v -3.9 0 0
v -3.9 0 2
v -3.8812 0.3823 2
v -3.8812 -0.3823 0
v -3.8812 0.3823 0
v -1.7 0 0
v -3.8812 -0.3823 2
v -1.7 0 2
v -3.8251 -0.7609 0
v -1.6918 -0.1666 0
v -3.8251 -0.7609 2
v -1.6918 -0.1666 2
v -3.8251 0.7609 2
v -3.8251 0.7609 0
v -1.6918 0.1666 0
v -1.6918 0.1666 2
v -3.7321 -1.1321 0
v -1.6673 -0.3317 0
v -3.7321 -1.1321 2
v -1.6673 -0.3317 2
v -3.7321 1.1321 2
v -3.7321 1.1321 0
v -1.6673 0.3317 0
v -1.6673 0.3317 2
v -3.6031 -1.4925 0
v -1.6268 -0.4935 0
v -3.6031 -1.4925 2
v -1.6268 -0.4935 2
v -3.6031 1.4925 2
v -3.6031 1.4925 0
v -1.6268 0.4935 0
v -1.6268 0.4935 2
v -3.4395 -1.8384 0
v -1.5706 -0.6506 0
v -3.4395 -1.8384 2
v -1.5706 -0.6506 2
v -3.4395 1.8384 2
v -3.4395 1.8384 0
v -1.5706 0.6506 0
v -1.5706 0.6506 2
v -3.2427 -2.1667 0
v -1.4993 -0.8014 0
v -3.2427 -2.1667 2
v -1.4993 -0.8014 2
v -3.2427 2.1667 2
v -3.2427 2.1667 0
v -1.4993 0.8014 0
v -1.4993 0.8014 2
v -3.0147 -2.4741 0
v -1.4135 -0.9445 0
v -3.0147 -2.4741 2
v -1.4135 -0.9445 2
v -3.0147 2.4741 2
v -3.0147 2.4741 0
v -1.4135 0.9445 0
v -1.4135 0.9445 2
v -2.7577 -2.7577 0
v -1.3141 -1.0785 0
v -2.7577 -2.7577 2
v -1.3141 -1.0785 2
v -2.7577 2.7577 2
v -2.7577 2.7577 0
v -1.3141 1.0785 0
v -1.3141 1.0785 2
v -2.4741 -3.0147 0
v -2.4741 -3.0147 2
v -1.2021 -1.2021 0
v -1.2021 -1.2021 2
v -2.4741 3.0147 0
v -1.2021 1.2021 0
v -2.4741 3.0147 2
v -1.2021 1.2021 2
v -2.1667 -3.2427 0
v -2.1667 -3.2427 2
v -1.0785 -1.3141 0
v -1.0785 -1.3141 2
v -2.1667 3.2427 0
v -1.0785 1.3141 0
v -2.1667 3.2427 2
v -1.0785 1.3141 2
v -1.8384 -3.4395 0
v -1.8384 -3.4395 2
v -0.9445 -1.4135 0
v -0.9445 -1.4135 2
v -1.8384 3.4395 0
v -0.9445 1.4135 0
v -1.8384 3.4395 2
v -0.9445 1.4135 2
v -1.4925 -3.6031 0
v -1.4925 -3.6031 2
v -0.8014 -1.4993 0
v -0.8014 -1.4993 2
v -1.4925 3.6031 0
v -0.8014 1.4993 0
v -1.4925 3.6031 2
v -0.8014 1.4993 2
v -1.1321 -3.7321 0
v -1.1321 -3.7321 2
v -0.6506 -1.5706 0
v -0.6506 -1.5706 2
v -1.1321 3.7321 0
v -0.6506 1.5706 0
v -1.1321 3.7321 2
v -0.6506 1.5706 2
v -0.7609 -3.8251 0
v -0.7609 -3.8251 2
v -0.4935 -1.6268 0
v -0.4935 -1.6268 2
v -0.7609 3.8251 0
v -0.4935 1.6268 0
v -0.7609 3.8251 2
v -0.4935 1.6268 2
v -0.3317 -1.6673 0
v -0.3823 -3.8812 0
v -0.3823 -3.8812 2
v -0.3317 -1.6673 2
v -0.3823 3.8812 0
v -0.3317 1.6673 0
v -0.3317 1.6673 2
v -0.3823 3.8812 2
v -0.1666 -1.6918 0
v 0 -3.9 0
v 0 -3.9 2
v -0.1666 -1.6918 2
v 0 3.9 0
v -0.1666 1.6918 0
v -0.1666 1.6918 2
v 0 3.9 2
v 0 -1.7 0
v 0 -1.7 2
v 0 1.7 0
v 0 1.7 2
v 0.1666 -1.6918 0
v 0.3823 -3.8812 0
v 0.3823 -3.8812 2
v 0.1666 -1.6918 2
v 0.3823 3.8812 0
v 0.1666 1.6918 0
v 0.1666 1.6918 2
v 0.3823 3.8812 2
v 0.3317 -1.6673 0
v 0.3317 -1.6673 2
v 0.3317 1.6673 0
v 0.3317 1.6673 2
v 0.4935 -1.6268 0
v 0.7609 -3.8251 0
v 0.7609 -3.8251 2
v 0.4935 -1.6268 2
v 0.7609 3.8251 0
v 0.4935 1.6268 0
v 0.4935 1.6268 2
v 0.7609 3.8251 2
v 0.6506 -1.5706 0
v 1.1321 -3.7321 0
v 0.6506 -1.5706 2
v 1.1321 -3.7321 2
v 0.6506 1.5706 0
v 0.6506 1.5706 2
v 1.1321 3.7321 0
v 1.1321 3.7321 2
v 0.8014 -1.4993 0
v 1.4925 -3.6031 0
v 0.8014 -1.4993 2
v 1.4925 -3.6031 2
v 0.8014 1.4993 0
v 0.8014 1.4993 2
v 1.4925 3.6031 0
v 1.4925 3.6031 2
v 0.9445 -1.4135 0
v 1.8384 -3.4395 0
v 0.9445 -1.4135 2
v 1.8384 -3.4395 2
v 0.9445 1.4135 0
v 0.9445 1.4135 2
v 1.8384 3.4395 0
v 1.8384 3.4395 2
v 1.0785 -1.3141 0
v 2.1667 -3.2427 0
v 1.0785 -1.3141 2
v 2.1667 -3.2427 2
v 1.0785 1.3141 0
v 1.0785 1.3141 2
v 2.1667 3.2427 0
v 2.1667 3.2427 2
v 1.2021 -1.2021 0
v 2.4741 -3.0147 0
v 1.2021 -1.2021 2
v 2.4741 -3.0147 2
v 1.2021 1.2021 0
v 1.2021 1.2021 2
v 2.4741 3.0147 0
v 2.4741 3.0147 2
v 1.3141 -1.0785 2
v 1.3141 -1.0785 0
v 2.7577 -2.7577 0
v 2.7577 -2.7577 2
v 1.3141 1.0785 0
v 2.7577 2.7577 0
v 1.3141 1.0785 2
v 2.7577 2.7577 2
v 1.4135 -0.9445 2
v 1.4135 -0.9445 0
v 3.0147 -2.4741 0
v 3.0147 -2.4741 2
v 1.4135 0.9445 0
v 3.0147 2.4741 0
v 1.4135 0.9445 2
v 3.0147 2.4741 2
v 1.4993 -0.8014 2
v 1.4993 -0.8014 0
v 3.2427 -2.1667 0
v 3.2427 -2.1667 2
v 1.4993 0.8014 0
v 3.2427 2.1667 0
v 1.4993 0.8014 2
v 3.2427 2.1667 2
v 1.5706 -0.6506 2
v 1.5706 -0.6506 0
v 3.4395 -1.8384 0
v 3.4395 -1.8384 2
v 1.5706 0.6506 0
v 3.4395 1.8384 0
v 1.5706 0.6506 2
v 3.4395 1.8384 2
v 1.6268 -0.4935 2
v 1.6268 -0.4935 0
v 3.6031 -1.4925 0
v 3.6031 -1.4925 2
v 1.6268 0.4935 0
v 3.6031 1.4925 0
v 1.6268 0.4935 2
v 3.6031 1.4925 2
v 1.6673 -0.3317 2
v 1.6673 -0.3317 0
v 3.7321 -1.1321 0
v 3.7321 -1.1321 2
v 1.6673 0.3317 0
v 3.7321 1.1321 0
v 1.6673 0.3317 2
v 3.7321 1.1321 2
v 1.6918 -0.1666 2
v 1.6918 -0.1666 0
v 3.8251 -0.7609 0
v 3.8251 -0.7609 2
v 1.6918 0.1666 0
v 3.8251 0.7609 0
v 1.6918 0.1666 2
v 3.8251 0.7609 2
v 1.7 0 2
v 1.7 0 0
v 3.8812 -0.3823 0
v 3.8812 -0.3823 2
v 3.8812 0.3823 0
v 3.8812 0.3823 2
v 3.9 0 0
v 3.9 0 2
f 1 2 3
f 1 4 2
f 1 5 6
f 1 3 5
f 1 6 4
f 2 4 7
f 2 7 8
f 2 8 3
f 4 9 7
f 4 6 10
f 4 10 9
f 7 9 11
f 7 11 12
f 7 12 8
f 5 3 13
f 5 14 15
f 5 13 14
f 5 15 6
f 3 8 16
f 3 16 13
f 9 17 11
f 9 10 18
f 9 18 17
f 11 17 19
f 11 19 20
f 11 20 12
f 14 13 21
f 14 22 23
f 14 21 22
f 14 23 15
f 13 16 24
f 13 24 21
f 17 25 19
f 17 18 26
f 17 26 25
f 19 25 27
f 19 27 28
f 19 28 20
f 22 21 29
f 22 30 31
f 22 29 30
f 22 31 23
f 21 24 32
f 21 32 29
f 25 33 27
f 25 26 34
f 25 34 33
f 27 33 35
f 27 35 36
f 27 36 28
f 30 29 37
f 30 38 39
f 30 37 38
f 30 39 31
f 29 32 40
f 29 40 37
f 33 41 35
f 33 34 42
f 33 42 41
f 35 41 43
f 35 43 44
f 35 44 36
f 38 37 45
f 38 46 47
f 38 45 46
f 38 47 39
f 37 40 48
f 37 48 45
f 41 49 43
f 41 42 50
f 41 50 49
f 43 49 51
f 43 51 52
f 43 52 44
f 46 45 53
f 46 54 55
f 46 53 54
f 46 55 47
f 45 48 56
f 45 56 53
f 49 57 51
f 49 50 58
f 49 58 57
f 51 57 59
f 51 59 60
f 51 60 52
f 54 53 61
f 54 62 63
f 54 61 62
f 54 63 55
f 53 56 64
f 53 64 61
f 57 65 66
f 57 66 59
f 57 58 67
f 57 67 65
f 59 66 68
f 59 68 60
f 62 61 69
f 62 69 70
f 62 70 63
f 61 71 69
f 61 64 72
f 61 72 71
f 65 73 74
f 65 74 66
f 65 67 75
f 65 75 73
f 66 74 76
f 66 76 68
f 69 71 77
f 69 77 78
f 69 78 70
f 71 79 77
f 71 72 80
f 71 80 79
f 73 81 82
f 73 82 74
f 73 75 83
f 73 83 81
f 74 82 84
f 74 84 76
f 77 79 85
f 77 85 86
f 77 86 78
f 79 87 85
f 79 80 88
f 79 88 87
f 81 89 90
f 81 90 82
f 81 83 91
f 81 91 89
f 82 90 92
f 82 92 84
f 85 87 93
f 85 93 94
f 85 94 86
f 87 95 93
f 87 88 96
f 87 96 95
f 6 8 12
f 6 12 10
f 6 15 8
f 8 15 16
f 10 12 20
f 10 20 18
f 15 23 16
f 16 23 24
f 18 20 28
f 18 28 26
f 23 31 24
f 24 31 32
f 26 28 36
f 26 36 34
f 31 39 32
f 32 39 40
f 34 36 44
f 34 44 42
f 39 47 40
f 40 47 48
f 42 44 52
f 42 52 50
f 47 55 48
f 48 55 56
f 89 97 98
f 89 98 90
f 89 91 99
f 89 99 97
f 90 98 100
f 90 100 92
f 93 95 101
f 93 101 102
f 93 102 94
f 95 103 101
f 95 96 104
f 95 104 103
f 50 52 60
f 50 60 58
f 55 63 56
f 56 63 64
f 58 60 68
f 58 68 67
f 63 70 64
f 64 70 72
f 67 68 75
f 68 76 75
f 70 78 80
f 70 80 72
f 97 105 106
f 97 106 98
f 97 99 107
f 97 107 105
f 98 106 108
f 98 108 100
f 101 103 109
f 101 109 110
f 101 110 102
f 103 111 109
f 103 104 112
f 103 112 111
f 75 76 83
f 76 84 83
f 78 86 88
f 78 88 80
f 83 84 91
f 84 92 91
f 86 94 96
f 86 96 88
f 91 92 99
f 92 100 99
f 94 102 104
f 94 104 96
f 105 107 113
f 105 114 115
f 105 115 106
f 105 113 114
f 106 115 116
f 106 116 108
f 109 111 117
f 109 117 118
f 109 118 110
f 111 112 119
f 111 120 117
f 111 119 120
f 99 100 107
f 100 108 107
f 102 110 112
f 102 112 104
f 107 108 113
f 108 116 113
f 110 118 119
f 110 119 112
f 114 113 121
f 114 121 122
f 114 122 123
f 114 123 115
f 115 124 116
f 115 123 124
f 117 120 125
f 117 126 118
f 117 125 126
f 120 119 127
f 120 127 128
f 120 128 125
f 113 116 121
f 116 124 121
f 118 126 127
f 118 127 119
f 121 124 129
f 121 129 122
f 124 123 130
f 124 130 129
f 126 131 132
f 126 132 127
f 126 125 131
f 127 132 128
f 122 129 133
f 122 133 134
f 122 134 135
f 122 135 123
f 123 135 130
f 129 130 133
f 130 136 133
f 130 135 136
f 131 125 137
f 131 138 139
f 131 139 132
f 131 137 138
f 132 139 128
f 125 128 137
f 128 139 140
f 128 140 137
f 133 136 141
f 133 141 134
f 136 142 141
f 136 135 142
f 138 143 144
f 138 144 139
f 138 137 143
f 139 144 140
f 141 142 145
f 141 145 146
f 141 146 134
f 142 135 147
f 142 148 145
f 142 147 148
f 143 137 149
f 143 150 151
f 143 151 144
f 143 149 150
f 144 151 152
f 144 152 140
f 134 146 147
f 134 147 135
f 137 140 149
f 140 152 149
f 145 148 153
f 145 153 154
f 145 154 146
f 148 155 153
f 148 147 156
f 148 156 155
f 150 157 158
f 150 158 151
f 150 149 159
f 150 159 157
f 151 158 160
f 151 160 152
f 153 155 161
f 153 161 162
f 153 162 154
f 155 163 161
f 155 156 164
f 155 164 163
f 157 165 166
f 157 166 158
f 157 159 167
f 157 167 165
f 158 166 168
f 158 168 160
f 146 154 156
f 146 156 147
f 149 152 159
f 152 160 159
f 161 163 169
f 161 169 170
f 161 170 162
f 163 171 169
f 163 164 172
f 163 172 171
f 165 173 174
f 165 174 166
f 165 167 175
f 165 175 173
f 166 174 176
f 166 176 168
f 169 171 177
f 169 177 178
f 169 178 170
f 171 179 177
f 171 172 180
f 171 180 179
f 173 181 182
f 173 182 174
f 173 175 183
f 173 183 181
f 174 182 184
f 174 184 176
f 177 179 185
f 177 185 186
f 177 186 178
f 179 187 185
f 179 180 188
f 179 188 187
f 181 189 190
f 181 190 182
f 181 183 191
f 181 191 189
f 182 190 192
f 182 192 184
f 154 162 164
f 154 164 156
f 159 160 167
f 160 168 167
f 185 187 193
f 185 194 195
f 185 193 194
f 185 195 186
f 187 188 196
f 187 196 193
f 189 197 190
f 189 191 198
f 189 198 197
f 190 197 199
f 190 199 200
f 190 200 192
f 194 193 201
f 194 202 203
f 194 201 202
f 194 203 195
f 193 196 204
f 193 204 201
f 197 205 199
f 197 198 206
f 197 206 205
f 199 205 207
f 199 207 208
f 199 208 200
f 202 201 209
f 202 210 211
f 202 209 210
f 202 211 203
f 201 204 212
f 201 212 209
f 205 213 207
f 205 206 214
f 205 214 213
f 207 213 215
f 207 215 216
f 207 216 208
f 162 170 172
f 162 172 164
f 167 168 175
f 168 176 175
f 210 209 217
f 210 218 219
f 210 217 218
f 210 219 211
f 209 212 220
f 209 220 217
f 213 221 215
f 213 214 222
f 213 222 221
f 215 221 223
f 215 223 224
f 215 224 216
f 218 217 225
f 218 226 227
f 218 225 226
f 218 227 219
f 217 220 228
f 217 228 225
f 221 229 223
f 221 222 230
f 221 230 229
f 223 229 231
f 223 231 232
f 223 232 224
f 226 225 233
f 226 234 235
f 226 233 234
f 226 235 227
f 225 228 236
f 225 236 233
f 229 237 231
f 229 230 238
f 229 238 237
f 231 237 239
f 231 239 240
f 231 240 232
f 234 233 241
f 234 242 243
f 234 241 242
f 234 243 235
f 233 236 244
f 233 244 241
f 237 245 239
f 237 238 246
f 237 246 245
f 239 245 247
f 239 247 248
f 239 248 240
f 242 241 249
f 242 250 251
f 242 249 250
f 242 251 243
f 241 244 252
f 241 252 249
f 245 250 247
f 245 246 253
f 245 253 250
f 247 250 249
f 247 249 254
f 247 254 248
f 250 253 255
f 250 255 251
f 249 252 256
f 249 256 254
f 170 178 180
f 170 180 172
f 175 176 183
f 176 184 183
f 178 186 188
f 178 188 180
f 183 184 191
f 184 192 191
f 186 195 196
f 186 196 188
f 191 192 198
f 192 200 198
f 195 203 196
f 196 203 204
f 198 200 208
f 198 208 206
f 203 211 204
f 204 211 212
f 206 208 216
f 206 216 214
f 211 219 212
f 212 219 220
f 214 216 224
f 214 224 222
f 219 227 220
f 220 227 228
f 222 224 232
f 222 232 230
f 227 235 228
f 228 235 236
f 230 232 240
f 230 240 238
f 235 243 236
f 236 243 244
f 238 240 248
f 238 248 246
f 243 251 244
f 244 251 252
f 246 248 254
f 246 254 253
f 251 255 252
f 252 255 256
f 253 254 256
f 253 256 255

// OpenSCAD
module cap_body()
{
   cylinder(r=7.8/2,h=2,$fn=64);
}

module cap()
{
difference(){
  cap_body();
  translate([0,0,-1]) cylinder(r=3.4/2,h=5,$fn=64);
  }
}


cap();
